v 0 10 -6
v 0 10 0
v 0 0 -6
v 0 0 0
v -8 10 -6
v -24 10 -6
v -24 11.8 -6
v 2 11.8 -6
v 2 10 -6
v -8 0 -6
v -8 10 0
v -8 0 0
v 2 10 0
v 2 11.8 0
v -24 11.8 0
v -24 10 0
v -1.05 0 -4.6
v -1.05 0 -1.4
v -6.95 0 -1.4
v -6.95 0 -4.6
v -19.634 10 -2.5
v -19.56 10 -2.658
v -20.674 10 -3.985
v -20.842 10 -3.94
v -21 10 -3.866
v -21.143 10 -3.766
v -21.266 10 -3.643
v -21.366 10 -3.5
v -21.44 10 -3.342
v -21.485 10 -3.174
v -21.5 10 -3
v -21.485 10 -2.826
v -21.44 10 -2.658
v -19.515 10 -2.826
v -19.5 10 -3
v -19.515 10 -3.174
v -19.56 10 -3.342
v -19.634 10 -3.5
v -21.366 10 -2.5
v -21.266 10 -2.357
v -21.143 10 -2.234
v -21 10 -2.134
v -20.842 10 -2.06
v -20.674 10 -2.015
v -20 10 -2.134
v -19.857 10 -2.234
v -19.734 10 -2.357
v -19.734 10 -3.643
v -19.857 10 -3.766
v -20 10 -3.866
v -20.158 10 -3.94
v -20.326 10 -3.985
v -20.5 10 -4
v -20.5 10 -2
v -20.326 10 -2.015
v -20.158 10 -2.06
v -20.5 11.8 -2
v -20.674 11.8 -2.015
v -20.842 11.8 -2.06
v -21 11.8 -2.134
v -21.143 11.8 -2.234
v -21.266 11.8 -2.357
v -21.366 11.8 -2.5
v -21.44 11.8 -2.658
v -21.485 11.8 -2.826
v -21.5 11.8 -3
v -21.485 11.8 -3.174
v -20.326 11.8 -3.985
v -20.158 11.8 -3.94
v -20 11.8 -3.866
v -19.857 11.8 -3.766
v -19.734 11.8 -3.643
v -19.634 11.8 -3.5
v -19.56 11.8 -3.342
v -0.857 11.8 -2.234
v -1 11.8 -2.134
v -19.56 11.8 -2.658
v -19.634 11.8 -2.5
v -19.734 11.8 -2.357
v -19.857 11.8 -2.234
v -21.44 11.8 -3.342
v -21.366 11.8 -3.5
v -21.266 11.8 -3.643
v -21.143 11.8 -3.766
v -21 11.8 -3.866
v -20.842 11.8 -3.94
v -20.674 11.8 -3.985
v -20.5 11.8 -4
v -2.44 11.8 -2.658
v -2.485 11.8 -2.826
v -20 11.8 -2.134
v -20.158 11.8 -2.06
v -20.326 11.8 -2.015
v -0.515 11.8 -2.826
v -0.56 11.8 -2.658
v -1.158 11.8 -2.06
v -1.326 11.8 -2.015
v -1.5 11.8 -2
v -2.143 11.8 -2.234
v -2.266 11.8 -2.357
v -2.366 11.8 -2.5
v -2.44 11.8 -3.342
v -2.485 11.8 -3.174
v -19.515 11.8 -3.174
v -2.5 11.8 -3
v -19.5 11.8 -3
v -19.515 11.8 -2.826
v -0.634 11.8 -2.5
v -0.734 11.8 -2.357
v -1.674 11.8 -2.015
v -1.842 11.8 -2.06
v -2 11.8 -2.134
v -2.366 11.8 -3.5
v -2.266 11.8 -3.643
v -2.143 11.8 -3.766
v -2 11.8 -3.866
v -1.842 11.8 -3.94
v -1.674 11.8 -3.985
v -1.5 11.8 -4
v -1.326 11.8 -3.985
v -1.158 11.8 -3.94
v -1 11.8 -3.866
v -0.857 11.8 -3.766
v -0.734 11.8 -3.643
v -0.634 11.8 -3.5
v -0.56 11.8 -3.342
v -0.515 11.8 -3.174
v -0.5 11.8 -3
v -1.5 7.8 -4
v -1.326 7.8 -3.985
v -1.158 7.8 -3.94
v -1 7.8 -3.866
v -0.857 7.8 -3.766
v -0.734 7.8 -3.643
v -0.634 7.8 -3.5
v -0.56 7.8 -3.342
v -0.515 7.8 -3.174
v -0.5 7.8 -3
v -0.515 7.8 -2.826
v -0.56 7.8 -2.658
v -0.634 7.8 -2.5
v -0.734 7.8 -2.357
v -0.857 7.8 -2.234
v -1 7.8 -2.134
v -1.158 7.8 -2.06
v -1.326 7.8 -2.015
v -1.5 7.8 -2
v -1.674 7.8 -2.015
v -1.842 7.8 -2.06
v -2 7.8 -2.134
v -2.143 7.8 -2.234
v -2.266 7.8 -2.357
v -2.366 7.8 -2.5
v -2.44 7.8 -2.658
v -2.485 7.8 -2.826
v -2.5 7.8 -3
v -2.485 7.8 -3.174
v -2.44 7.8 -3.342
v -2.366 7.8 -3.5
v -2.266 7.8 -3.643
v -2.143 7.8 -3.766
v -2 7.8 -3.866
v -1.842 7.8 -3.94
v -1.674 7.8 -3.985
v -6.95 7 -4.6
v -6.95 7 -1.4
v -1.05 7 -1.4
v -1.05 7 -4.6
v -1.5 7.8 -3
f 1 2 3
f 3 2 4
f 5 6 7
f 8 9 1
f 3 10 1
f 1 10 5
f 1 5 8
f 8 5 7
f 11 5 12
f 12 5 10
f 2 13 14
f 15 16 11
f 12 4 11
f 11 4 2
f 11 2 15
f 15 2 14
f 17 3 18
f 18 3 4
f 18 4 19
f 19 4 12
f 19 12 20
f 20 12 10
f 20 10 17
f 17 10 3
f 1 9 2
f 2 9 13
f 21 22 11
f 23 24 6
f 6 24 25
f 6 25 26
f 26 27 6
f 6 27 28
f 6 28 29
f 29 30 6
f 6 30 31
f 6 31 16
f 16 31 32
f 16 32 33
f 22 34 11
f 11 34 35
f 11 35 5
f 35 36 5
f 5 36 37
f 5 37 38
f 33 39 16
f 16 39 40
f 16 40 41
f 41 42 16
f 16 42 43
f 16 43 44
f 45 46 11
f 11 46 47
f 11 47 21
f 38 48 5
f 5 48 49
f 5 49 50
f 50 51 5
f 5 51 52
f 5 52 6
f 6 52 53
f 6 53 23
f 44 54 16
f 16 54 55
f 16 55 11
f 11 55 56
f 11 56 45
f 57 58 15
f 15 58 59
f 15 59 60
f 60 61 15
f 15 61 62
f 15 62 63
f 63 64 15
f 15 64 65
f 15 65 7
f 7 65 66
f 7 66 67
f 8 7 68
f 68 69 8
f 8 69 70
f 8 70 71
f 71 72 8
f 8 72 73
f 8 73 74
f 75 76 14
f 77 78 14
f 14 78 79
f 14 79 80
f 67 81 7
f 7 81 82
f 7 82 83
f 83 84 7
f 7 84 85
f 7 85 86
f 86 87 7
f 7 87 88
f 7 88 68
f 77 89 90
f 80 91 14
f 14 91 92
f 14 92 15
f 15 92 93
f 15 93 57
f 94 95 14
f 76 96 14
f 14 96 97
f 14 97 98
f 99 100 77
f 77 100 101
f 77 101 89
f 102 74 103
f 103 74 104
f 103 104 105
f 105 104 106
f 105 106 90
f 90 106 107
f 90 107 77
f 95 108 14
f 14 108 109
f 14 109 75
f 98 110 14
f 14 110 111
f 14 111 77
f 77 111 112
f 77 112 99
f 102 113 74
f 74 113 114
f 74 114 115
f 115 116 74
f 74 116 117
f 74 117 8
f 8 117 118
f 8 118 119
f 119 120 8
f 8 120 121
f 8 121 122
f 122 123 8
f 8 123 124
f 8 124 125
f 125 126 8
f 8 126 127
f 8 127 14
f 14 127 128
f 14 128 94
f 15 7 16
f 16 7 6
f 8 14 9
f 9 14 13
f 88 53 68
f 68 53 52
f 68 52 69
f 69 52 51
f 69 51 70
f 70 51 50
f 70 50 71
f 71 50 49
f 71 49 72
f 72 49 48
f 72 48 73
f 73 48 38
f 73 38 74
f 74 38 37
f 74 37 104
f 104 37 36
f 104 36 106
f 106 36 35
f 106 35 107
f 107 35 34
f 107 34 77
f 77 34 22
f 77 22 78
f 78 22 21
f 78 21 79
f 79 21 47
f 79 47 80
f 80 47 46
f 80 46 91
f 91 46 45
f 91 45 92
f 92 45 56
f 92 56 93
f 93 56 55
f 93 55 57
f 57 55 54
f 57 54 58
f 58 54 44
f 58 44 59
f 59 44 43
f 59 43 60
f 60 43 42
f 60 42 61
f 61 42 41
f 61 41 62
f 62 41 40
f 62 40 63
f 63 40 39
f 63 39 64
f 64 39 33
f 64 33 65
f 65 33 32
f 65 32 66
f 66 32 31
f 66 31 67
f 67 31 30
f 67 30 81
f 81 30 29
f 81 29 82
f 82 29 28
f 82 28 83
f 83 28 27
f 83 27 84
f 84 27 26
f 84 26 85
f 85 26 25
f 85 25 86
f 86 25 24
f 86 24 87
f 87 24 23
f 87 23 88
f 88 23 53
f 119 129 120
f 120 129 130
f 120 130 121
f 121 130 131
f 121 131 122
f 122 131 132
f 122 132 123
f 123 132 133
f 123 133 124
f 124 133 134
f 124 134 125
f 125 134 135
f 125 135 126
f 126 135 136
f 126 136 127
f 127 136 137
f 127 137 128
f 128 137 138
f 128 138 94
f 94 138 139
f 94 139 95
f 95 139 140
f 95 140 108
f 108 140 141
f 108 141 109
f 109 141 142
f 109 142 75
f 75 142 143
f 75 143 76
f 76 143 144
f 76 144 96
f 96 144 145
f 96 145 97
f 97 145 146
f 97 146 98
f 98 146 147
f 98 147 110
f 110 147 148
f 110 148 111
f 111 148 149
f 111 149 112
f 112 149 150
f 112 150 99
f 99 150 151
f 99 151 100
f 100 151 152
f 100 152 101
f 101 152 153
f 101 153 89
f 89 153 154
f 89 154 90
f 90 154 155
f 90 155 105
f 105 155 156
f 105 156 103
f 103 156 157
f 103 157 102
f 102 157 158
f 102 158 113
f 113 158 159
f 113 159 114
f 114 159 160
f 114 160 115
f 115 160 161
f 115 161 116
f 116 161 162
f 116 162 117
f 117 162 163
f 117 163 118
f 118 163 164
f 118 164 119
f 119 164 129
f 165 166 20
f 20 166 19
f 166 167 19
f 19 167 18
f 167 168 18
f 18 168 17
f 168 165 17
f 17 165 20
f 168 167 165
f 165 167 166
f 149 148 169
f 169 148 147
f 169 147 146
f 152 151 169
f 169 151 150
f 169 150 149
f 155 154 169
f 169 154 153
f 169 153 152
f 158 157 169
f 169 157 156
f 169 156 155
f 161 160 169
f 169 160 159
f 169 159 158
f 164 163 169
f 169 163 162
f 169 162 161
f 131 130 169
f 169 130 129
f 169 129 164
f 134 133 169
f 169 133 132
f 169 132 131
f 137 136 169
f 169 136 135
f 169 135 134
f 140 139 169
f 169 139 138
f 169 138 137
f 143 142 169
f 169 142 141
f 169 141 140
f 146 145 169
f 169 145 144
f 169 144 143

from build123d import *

# Parameters (mm, degrees)
SKETCH1_W           = 8
SKETCH1_H           = 6
BOSS_EXTRUDE1_DEPTH = 10
SKETCH3_W           = 26
SKETCH3_H           = 6
SKETCH3_R           = 1
BOSS_EXTRUDE2_DEPTH = 1.8
SKETCH4_W           = 5.9
SKETCH4_H           = 3.2
CUT_EXTRUDE1_DEPTH  = 7
CUT_EXTRUDE2_START  = -4
SKETCH6_R           = 1
CUT_EXTRUDE2_DEPTH  = 4


with BuildPart() as part:
    # Sketch1 → Boss-Extrude1 (new body)
    with BuildSketch(Plane(origin=(0, 0, 0), x_dir=(1, 0, 0), z_dir=(0, 1, 0))):
        with Locations((-4, 3)):
            Rectangle(SKETCH1_W, SKETCH1_H)
    extrude(amount=BOSS_EXTRUDE1_DEPTH)

    # Sketch3 → Boss-Extrude2 (add)
    with BuildSketch(Plane(origin=(0, 10, 0), x_dir=(1, 0, 0), z_dir=(0, 1, 0))):
        with Locations((-11, 3)):
            Rectangle(SKETCH3_W, SKETCH3_H)
        with Locations(Location((-20.5, 3, 0), (0, 0, 270))):
            Circle(SKETCH3_R, mode=Mode.SUBTRACT)
        with Locations(Location((-1.5, 3, 0), (0, 0, 90))):
            Circle(SKETCH3_R, mode=Mode.SUBTRACT)
    extrude(amount=BOSS_EXTRUDE2_DEPTH)

    # Sketch4 → Cut-Extrude1 (cut)
    with BuildSketch(Plane.XZ):
        with Locations((-4, -3)):
            Rectangle(SKETCH4_W, SKETCH4_H)
    extrude(amount=-CUT_EXTRUDE1_DEPTH, mode=Mode.SUBTRACT)

    # Sketch6 → Cut-Extrude2 (cut)
    with BuildSketch(Plane(origin=(0, 11.8, 0), x_dir=(1, 0, 0), z_dir=(0, 1, 0)).offset(CUT_EXTRUDE2_START)):
        with Locations(Location((-1.5, 3, 0), (0, 0, 90))):
            Circle(SKETCH6_R)
    extrude(amount=CUT_EXTRUDE2_DEPTH, mode=Mode.SUBTRACT)


solid = part.part
